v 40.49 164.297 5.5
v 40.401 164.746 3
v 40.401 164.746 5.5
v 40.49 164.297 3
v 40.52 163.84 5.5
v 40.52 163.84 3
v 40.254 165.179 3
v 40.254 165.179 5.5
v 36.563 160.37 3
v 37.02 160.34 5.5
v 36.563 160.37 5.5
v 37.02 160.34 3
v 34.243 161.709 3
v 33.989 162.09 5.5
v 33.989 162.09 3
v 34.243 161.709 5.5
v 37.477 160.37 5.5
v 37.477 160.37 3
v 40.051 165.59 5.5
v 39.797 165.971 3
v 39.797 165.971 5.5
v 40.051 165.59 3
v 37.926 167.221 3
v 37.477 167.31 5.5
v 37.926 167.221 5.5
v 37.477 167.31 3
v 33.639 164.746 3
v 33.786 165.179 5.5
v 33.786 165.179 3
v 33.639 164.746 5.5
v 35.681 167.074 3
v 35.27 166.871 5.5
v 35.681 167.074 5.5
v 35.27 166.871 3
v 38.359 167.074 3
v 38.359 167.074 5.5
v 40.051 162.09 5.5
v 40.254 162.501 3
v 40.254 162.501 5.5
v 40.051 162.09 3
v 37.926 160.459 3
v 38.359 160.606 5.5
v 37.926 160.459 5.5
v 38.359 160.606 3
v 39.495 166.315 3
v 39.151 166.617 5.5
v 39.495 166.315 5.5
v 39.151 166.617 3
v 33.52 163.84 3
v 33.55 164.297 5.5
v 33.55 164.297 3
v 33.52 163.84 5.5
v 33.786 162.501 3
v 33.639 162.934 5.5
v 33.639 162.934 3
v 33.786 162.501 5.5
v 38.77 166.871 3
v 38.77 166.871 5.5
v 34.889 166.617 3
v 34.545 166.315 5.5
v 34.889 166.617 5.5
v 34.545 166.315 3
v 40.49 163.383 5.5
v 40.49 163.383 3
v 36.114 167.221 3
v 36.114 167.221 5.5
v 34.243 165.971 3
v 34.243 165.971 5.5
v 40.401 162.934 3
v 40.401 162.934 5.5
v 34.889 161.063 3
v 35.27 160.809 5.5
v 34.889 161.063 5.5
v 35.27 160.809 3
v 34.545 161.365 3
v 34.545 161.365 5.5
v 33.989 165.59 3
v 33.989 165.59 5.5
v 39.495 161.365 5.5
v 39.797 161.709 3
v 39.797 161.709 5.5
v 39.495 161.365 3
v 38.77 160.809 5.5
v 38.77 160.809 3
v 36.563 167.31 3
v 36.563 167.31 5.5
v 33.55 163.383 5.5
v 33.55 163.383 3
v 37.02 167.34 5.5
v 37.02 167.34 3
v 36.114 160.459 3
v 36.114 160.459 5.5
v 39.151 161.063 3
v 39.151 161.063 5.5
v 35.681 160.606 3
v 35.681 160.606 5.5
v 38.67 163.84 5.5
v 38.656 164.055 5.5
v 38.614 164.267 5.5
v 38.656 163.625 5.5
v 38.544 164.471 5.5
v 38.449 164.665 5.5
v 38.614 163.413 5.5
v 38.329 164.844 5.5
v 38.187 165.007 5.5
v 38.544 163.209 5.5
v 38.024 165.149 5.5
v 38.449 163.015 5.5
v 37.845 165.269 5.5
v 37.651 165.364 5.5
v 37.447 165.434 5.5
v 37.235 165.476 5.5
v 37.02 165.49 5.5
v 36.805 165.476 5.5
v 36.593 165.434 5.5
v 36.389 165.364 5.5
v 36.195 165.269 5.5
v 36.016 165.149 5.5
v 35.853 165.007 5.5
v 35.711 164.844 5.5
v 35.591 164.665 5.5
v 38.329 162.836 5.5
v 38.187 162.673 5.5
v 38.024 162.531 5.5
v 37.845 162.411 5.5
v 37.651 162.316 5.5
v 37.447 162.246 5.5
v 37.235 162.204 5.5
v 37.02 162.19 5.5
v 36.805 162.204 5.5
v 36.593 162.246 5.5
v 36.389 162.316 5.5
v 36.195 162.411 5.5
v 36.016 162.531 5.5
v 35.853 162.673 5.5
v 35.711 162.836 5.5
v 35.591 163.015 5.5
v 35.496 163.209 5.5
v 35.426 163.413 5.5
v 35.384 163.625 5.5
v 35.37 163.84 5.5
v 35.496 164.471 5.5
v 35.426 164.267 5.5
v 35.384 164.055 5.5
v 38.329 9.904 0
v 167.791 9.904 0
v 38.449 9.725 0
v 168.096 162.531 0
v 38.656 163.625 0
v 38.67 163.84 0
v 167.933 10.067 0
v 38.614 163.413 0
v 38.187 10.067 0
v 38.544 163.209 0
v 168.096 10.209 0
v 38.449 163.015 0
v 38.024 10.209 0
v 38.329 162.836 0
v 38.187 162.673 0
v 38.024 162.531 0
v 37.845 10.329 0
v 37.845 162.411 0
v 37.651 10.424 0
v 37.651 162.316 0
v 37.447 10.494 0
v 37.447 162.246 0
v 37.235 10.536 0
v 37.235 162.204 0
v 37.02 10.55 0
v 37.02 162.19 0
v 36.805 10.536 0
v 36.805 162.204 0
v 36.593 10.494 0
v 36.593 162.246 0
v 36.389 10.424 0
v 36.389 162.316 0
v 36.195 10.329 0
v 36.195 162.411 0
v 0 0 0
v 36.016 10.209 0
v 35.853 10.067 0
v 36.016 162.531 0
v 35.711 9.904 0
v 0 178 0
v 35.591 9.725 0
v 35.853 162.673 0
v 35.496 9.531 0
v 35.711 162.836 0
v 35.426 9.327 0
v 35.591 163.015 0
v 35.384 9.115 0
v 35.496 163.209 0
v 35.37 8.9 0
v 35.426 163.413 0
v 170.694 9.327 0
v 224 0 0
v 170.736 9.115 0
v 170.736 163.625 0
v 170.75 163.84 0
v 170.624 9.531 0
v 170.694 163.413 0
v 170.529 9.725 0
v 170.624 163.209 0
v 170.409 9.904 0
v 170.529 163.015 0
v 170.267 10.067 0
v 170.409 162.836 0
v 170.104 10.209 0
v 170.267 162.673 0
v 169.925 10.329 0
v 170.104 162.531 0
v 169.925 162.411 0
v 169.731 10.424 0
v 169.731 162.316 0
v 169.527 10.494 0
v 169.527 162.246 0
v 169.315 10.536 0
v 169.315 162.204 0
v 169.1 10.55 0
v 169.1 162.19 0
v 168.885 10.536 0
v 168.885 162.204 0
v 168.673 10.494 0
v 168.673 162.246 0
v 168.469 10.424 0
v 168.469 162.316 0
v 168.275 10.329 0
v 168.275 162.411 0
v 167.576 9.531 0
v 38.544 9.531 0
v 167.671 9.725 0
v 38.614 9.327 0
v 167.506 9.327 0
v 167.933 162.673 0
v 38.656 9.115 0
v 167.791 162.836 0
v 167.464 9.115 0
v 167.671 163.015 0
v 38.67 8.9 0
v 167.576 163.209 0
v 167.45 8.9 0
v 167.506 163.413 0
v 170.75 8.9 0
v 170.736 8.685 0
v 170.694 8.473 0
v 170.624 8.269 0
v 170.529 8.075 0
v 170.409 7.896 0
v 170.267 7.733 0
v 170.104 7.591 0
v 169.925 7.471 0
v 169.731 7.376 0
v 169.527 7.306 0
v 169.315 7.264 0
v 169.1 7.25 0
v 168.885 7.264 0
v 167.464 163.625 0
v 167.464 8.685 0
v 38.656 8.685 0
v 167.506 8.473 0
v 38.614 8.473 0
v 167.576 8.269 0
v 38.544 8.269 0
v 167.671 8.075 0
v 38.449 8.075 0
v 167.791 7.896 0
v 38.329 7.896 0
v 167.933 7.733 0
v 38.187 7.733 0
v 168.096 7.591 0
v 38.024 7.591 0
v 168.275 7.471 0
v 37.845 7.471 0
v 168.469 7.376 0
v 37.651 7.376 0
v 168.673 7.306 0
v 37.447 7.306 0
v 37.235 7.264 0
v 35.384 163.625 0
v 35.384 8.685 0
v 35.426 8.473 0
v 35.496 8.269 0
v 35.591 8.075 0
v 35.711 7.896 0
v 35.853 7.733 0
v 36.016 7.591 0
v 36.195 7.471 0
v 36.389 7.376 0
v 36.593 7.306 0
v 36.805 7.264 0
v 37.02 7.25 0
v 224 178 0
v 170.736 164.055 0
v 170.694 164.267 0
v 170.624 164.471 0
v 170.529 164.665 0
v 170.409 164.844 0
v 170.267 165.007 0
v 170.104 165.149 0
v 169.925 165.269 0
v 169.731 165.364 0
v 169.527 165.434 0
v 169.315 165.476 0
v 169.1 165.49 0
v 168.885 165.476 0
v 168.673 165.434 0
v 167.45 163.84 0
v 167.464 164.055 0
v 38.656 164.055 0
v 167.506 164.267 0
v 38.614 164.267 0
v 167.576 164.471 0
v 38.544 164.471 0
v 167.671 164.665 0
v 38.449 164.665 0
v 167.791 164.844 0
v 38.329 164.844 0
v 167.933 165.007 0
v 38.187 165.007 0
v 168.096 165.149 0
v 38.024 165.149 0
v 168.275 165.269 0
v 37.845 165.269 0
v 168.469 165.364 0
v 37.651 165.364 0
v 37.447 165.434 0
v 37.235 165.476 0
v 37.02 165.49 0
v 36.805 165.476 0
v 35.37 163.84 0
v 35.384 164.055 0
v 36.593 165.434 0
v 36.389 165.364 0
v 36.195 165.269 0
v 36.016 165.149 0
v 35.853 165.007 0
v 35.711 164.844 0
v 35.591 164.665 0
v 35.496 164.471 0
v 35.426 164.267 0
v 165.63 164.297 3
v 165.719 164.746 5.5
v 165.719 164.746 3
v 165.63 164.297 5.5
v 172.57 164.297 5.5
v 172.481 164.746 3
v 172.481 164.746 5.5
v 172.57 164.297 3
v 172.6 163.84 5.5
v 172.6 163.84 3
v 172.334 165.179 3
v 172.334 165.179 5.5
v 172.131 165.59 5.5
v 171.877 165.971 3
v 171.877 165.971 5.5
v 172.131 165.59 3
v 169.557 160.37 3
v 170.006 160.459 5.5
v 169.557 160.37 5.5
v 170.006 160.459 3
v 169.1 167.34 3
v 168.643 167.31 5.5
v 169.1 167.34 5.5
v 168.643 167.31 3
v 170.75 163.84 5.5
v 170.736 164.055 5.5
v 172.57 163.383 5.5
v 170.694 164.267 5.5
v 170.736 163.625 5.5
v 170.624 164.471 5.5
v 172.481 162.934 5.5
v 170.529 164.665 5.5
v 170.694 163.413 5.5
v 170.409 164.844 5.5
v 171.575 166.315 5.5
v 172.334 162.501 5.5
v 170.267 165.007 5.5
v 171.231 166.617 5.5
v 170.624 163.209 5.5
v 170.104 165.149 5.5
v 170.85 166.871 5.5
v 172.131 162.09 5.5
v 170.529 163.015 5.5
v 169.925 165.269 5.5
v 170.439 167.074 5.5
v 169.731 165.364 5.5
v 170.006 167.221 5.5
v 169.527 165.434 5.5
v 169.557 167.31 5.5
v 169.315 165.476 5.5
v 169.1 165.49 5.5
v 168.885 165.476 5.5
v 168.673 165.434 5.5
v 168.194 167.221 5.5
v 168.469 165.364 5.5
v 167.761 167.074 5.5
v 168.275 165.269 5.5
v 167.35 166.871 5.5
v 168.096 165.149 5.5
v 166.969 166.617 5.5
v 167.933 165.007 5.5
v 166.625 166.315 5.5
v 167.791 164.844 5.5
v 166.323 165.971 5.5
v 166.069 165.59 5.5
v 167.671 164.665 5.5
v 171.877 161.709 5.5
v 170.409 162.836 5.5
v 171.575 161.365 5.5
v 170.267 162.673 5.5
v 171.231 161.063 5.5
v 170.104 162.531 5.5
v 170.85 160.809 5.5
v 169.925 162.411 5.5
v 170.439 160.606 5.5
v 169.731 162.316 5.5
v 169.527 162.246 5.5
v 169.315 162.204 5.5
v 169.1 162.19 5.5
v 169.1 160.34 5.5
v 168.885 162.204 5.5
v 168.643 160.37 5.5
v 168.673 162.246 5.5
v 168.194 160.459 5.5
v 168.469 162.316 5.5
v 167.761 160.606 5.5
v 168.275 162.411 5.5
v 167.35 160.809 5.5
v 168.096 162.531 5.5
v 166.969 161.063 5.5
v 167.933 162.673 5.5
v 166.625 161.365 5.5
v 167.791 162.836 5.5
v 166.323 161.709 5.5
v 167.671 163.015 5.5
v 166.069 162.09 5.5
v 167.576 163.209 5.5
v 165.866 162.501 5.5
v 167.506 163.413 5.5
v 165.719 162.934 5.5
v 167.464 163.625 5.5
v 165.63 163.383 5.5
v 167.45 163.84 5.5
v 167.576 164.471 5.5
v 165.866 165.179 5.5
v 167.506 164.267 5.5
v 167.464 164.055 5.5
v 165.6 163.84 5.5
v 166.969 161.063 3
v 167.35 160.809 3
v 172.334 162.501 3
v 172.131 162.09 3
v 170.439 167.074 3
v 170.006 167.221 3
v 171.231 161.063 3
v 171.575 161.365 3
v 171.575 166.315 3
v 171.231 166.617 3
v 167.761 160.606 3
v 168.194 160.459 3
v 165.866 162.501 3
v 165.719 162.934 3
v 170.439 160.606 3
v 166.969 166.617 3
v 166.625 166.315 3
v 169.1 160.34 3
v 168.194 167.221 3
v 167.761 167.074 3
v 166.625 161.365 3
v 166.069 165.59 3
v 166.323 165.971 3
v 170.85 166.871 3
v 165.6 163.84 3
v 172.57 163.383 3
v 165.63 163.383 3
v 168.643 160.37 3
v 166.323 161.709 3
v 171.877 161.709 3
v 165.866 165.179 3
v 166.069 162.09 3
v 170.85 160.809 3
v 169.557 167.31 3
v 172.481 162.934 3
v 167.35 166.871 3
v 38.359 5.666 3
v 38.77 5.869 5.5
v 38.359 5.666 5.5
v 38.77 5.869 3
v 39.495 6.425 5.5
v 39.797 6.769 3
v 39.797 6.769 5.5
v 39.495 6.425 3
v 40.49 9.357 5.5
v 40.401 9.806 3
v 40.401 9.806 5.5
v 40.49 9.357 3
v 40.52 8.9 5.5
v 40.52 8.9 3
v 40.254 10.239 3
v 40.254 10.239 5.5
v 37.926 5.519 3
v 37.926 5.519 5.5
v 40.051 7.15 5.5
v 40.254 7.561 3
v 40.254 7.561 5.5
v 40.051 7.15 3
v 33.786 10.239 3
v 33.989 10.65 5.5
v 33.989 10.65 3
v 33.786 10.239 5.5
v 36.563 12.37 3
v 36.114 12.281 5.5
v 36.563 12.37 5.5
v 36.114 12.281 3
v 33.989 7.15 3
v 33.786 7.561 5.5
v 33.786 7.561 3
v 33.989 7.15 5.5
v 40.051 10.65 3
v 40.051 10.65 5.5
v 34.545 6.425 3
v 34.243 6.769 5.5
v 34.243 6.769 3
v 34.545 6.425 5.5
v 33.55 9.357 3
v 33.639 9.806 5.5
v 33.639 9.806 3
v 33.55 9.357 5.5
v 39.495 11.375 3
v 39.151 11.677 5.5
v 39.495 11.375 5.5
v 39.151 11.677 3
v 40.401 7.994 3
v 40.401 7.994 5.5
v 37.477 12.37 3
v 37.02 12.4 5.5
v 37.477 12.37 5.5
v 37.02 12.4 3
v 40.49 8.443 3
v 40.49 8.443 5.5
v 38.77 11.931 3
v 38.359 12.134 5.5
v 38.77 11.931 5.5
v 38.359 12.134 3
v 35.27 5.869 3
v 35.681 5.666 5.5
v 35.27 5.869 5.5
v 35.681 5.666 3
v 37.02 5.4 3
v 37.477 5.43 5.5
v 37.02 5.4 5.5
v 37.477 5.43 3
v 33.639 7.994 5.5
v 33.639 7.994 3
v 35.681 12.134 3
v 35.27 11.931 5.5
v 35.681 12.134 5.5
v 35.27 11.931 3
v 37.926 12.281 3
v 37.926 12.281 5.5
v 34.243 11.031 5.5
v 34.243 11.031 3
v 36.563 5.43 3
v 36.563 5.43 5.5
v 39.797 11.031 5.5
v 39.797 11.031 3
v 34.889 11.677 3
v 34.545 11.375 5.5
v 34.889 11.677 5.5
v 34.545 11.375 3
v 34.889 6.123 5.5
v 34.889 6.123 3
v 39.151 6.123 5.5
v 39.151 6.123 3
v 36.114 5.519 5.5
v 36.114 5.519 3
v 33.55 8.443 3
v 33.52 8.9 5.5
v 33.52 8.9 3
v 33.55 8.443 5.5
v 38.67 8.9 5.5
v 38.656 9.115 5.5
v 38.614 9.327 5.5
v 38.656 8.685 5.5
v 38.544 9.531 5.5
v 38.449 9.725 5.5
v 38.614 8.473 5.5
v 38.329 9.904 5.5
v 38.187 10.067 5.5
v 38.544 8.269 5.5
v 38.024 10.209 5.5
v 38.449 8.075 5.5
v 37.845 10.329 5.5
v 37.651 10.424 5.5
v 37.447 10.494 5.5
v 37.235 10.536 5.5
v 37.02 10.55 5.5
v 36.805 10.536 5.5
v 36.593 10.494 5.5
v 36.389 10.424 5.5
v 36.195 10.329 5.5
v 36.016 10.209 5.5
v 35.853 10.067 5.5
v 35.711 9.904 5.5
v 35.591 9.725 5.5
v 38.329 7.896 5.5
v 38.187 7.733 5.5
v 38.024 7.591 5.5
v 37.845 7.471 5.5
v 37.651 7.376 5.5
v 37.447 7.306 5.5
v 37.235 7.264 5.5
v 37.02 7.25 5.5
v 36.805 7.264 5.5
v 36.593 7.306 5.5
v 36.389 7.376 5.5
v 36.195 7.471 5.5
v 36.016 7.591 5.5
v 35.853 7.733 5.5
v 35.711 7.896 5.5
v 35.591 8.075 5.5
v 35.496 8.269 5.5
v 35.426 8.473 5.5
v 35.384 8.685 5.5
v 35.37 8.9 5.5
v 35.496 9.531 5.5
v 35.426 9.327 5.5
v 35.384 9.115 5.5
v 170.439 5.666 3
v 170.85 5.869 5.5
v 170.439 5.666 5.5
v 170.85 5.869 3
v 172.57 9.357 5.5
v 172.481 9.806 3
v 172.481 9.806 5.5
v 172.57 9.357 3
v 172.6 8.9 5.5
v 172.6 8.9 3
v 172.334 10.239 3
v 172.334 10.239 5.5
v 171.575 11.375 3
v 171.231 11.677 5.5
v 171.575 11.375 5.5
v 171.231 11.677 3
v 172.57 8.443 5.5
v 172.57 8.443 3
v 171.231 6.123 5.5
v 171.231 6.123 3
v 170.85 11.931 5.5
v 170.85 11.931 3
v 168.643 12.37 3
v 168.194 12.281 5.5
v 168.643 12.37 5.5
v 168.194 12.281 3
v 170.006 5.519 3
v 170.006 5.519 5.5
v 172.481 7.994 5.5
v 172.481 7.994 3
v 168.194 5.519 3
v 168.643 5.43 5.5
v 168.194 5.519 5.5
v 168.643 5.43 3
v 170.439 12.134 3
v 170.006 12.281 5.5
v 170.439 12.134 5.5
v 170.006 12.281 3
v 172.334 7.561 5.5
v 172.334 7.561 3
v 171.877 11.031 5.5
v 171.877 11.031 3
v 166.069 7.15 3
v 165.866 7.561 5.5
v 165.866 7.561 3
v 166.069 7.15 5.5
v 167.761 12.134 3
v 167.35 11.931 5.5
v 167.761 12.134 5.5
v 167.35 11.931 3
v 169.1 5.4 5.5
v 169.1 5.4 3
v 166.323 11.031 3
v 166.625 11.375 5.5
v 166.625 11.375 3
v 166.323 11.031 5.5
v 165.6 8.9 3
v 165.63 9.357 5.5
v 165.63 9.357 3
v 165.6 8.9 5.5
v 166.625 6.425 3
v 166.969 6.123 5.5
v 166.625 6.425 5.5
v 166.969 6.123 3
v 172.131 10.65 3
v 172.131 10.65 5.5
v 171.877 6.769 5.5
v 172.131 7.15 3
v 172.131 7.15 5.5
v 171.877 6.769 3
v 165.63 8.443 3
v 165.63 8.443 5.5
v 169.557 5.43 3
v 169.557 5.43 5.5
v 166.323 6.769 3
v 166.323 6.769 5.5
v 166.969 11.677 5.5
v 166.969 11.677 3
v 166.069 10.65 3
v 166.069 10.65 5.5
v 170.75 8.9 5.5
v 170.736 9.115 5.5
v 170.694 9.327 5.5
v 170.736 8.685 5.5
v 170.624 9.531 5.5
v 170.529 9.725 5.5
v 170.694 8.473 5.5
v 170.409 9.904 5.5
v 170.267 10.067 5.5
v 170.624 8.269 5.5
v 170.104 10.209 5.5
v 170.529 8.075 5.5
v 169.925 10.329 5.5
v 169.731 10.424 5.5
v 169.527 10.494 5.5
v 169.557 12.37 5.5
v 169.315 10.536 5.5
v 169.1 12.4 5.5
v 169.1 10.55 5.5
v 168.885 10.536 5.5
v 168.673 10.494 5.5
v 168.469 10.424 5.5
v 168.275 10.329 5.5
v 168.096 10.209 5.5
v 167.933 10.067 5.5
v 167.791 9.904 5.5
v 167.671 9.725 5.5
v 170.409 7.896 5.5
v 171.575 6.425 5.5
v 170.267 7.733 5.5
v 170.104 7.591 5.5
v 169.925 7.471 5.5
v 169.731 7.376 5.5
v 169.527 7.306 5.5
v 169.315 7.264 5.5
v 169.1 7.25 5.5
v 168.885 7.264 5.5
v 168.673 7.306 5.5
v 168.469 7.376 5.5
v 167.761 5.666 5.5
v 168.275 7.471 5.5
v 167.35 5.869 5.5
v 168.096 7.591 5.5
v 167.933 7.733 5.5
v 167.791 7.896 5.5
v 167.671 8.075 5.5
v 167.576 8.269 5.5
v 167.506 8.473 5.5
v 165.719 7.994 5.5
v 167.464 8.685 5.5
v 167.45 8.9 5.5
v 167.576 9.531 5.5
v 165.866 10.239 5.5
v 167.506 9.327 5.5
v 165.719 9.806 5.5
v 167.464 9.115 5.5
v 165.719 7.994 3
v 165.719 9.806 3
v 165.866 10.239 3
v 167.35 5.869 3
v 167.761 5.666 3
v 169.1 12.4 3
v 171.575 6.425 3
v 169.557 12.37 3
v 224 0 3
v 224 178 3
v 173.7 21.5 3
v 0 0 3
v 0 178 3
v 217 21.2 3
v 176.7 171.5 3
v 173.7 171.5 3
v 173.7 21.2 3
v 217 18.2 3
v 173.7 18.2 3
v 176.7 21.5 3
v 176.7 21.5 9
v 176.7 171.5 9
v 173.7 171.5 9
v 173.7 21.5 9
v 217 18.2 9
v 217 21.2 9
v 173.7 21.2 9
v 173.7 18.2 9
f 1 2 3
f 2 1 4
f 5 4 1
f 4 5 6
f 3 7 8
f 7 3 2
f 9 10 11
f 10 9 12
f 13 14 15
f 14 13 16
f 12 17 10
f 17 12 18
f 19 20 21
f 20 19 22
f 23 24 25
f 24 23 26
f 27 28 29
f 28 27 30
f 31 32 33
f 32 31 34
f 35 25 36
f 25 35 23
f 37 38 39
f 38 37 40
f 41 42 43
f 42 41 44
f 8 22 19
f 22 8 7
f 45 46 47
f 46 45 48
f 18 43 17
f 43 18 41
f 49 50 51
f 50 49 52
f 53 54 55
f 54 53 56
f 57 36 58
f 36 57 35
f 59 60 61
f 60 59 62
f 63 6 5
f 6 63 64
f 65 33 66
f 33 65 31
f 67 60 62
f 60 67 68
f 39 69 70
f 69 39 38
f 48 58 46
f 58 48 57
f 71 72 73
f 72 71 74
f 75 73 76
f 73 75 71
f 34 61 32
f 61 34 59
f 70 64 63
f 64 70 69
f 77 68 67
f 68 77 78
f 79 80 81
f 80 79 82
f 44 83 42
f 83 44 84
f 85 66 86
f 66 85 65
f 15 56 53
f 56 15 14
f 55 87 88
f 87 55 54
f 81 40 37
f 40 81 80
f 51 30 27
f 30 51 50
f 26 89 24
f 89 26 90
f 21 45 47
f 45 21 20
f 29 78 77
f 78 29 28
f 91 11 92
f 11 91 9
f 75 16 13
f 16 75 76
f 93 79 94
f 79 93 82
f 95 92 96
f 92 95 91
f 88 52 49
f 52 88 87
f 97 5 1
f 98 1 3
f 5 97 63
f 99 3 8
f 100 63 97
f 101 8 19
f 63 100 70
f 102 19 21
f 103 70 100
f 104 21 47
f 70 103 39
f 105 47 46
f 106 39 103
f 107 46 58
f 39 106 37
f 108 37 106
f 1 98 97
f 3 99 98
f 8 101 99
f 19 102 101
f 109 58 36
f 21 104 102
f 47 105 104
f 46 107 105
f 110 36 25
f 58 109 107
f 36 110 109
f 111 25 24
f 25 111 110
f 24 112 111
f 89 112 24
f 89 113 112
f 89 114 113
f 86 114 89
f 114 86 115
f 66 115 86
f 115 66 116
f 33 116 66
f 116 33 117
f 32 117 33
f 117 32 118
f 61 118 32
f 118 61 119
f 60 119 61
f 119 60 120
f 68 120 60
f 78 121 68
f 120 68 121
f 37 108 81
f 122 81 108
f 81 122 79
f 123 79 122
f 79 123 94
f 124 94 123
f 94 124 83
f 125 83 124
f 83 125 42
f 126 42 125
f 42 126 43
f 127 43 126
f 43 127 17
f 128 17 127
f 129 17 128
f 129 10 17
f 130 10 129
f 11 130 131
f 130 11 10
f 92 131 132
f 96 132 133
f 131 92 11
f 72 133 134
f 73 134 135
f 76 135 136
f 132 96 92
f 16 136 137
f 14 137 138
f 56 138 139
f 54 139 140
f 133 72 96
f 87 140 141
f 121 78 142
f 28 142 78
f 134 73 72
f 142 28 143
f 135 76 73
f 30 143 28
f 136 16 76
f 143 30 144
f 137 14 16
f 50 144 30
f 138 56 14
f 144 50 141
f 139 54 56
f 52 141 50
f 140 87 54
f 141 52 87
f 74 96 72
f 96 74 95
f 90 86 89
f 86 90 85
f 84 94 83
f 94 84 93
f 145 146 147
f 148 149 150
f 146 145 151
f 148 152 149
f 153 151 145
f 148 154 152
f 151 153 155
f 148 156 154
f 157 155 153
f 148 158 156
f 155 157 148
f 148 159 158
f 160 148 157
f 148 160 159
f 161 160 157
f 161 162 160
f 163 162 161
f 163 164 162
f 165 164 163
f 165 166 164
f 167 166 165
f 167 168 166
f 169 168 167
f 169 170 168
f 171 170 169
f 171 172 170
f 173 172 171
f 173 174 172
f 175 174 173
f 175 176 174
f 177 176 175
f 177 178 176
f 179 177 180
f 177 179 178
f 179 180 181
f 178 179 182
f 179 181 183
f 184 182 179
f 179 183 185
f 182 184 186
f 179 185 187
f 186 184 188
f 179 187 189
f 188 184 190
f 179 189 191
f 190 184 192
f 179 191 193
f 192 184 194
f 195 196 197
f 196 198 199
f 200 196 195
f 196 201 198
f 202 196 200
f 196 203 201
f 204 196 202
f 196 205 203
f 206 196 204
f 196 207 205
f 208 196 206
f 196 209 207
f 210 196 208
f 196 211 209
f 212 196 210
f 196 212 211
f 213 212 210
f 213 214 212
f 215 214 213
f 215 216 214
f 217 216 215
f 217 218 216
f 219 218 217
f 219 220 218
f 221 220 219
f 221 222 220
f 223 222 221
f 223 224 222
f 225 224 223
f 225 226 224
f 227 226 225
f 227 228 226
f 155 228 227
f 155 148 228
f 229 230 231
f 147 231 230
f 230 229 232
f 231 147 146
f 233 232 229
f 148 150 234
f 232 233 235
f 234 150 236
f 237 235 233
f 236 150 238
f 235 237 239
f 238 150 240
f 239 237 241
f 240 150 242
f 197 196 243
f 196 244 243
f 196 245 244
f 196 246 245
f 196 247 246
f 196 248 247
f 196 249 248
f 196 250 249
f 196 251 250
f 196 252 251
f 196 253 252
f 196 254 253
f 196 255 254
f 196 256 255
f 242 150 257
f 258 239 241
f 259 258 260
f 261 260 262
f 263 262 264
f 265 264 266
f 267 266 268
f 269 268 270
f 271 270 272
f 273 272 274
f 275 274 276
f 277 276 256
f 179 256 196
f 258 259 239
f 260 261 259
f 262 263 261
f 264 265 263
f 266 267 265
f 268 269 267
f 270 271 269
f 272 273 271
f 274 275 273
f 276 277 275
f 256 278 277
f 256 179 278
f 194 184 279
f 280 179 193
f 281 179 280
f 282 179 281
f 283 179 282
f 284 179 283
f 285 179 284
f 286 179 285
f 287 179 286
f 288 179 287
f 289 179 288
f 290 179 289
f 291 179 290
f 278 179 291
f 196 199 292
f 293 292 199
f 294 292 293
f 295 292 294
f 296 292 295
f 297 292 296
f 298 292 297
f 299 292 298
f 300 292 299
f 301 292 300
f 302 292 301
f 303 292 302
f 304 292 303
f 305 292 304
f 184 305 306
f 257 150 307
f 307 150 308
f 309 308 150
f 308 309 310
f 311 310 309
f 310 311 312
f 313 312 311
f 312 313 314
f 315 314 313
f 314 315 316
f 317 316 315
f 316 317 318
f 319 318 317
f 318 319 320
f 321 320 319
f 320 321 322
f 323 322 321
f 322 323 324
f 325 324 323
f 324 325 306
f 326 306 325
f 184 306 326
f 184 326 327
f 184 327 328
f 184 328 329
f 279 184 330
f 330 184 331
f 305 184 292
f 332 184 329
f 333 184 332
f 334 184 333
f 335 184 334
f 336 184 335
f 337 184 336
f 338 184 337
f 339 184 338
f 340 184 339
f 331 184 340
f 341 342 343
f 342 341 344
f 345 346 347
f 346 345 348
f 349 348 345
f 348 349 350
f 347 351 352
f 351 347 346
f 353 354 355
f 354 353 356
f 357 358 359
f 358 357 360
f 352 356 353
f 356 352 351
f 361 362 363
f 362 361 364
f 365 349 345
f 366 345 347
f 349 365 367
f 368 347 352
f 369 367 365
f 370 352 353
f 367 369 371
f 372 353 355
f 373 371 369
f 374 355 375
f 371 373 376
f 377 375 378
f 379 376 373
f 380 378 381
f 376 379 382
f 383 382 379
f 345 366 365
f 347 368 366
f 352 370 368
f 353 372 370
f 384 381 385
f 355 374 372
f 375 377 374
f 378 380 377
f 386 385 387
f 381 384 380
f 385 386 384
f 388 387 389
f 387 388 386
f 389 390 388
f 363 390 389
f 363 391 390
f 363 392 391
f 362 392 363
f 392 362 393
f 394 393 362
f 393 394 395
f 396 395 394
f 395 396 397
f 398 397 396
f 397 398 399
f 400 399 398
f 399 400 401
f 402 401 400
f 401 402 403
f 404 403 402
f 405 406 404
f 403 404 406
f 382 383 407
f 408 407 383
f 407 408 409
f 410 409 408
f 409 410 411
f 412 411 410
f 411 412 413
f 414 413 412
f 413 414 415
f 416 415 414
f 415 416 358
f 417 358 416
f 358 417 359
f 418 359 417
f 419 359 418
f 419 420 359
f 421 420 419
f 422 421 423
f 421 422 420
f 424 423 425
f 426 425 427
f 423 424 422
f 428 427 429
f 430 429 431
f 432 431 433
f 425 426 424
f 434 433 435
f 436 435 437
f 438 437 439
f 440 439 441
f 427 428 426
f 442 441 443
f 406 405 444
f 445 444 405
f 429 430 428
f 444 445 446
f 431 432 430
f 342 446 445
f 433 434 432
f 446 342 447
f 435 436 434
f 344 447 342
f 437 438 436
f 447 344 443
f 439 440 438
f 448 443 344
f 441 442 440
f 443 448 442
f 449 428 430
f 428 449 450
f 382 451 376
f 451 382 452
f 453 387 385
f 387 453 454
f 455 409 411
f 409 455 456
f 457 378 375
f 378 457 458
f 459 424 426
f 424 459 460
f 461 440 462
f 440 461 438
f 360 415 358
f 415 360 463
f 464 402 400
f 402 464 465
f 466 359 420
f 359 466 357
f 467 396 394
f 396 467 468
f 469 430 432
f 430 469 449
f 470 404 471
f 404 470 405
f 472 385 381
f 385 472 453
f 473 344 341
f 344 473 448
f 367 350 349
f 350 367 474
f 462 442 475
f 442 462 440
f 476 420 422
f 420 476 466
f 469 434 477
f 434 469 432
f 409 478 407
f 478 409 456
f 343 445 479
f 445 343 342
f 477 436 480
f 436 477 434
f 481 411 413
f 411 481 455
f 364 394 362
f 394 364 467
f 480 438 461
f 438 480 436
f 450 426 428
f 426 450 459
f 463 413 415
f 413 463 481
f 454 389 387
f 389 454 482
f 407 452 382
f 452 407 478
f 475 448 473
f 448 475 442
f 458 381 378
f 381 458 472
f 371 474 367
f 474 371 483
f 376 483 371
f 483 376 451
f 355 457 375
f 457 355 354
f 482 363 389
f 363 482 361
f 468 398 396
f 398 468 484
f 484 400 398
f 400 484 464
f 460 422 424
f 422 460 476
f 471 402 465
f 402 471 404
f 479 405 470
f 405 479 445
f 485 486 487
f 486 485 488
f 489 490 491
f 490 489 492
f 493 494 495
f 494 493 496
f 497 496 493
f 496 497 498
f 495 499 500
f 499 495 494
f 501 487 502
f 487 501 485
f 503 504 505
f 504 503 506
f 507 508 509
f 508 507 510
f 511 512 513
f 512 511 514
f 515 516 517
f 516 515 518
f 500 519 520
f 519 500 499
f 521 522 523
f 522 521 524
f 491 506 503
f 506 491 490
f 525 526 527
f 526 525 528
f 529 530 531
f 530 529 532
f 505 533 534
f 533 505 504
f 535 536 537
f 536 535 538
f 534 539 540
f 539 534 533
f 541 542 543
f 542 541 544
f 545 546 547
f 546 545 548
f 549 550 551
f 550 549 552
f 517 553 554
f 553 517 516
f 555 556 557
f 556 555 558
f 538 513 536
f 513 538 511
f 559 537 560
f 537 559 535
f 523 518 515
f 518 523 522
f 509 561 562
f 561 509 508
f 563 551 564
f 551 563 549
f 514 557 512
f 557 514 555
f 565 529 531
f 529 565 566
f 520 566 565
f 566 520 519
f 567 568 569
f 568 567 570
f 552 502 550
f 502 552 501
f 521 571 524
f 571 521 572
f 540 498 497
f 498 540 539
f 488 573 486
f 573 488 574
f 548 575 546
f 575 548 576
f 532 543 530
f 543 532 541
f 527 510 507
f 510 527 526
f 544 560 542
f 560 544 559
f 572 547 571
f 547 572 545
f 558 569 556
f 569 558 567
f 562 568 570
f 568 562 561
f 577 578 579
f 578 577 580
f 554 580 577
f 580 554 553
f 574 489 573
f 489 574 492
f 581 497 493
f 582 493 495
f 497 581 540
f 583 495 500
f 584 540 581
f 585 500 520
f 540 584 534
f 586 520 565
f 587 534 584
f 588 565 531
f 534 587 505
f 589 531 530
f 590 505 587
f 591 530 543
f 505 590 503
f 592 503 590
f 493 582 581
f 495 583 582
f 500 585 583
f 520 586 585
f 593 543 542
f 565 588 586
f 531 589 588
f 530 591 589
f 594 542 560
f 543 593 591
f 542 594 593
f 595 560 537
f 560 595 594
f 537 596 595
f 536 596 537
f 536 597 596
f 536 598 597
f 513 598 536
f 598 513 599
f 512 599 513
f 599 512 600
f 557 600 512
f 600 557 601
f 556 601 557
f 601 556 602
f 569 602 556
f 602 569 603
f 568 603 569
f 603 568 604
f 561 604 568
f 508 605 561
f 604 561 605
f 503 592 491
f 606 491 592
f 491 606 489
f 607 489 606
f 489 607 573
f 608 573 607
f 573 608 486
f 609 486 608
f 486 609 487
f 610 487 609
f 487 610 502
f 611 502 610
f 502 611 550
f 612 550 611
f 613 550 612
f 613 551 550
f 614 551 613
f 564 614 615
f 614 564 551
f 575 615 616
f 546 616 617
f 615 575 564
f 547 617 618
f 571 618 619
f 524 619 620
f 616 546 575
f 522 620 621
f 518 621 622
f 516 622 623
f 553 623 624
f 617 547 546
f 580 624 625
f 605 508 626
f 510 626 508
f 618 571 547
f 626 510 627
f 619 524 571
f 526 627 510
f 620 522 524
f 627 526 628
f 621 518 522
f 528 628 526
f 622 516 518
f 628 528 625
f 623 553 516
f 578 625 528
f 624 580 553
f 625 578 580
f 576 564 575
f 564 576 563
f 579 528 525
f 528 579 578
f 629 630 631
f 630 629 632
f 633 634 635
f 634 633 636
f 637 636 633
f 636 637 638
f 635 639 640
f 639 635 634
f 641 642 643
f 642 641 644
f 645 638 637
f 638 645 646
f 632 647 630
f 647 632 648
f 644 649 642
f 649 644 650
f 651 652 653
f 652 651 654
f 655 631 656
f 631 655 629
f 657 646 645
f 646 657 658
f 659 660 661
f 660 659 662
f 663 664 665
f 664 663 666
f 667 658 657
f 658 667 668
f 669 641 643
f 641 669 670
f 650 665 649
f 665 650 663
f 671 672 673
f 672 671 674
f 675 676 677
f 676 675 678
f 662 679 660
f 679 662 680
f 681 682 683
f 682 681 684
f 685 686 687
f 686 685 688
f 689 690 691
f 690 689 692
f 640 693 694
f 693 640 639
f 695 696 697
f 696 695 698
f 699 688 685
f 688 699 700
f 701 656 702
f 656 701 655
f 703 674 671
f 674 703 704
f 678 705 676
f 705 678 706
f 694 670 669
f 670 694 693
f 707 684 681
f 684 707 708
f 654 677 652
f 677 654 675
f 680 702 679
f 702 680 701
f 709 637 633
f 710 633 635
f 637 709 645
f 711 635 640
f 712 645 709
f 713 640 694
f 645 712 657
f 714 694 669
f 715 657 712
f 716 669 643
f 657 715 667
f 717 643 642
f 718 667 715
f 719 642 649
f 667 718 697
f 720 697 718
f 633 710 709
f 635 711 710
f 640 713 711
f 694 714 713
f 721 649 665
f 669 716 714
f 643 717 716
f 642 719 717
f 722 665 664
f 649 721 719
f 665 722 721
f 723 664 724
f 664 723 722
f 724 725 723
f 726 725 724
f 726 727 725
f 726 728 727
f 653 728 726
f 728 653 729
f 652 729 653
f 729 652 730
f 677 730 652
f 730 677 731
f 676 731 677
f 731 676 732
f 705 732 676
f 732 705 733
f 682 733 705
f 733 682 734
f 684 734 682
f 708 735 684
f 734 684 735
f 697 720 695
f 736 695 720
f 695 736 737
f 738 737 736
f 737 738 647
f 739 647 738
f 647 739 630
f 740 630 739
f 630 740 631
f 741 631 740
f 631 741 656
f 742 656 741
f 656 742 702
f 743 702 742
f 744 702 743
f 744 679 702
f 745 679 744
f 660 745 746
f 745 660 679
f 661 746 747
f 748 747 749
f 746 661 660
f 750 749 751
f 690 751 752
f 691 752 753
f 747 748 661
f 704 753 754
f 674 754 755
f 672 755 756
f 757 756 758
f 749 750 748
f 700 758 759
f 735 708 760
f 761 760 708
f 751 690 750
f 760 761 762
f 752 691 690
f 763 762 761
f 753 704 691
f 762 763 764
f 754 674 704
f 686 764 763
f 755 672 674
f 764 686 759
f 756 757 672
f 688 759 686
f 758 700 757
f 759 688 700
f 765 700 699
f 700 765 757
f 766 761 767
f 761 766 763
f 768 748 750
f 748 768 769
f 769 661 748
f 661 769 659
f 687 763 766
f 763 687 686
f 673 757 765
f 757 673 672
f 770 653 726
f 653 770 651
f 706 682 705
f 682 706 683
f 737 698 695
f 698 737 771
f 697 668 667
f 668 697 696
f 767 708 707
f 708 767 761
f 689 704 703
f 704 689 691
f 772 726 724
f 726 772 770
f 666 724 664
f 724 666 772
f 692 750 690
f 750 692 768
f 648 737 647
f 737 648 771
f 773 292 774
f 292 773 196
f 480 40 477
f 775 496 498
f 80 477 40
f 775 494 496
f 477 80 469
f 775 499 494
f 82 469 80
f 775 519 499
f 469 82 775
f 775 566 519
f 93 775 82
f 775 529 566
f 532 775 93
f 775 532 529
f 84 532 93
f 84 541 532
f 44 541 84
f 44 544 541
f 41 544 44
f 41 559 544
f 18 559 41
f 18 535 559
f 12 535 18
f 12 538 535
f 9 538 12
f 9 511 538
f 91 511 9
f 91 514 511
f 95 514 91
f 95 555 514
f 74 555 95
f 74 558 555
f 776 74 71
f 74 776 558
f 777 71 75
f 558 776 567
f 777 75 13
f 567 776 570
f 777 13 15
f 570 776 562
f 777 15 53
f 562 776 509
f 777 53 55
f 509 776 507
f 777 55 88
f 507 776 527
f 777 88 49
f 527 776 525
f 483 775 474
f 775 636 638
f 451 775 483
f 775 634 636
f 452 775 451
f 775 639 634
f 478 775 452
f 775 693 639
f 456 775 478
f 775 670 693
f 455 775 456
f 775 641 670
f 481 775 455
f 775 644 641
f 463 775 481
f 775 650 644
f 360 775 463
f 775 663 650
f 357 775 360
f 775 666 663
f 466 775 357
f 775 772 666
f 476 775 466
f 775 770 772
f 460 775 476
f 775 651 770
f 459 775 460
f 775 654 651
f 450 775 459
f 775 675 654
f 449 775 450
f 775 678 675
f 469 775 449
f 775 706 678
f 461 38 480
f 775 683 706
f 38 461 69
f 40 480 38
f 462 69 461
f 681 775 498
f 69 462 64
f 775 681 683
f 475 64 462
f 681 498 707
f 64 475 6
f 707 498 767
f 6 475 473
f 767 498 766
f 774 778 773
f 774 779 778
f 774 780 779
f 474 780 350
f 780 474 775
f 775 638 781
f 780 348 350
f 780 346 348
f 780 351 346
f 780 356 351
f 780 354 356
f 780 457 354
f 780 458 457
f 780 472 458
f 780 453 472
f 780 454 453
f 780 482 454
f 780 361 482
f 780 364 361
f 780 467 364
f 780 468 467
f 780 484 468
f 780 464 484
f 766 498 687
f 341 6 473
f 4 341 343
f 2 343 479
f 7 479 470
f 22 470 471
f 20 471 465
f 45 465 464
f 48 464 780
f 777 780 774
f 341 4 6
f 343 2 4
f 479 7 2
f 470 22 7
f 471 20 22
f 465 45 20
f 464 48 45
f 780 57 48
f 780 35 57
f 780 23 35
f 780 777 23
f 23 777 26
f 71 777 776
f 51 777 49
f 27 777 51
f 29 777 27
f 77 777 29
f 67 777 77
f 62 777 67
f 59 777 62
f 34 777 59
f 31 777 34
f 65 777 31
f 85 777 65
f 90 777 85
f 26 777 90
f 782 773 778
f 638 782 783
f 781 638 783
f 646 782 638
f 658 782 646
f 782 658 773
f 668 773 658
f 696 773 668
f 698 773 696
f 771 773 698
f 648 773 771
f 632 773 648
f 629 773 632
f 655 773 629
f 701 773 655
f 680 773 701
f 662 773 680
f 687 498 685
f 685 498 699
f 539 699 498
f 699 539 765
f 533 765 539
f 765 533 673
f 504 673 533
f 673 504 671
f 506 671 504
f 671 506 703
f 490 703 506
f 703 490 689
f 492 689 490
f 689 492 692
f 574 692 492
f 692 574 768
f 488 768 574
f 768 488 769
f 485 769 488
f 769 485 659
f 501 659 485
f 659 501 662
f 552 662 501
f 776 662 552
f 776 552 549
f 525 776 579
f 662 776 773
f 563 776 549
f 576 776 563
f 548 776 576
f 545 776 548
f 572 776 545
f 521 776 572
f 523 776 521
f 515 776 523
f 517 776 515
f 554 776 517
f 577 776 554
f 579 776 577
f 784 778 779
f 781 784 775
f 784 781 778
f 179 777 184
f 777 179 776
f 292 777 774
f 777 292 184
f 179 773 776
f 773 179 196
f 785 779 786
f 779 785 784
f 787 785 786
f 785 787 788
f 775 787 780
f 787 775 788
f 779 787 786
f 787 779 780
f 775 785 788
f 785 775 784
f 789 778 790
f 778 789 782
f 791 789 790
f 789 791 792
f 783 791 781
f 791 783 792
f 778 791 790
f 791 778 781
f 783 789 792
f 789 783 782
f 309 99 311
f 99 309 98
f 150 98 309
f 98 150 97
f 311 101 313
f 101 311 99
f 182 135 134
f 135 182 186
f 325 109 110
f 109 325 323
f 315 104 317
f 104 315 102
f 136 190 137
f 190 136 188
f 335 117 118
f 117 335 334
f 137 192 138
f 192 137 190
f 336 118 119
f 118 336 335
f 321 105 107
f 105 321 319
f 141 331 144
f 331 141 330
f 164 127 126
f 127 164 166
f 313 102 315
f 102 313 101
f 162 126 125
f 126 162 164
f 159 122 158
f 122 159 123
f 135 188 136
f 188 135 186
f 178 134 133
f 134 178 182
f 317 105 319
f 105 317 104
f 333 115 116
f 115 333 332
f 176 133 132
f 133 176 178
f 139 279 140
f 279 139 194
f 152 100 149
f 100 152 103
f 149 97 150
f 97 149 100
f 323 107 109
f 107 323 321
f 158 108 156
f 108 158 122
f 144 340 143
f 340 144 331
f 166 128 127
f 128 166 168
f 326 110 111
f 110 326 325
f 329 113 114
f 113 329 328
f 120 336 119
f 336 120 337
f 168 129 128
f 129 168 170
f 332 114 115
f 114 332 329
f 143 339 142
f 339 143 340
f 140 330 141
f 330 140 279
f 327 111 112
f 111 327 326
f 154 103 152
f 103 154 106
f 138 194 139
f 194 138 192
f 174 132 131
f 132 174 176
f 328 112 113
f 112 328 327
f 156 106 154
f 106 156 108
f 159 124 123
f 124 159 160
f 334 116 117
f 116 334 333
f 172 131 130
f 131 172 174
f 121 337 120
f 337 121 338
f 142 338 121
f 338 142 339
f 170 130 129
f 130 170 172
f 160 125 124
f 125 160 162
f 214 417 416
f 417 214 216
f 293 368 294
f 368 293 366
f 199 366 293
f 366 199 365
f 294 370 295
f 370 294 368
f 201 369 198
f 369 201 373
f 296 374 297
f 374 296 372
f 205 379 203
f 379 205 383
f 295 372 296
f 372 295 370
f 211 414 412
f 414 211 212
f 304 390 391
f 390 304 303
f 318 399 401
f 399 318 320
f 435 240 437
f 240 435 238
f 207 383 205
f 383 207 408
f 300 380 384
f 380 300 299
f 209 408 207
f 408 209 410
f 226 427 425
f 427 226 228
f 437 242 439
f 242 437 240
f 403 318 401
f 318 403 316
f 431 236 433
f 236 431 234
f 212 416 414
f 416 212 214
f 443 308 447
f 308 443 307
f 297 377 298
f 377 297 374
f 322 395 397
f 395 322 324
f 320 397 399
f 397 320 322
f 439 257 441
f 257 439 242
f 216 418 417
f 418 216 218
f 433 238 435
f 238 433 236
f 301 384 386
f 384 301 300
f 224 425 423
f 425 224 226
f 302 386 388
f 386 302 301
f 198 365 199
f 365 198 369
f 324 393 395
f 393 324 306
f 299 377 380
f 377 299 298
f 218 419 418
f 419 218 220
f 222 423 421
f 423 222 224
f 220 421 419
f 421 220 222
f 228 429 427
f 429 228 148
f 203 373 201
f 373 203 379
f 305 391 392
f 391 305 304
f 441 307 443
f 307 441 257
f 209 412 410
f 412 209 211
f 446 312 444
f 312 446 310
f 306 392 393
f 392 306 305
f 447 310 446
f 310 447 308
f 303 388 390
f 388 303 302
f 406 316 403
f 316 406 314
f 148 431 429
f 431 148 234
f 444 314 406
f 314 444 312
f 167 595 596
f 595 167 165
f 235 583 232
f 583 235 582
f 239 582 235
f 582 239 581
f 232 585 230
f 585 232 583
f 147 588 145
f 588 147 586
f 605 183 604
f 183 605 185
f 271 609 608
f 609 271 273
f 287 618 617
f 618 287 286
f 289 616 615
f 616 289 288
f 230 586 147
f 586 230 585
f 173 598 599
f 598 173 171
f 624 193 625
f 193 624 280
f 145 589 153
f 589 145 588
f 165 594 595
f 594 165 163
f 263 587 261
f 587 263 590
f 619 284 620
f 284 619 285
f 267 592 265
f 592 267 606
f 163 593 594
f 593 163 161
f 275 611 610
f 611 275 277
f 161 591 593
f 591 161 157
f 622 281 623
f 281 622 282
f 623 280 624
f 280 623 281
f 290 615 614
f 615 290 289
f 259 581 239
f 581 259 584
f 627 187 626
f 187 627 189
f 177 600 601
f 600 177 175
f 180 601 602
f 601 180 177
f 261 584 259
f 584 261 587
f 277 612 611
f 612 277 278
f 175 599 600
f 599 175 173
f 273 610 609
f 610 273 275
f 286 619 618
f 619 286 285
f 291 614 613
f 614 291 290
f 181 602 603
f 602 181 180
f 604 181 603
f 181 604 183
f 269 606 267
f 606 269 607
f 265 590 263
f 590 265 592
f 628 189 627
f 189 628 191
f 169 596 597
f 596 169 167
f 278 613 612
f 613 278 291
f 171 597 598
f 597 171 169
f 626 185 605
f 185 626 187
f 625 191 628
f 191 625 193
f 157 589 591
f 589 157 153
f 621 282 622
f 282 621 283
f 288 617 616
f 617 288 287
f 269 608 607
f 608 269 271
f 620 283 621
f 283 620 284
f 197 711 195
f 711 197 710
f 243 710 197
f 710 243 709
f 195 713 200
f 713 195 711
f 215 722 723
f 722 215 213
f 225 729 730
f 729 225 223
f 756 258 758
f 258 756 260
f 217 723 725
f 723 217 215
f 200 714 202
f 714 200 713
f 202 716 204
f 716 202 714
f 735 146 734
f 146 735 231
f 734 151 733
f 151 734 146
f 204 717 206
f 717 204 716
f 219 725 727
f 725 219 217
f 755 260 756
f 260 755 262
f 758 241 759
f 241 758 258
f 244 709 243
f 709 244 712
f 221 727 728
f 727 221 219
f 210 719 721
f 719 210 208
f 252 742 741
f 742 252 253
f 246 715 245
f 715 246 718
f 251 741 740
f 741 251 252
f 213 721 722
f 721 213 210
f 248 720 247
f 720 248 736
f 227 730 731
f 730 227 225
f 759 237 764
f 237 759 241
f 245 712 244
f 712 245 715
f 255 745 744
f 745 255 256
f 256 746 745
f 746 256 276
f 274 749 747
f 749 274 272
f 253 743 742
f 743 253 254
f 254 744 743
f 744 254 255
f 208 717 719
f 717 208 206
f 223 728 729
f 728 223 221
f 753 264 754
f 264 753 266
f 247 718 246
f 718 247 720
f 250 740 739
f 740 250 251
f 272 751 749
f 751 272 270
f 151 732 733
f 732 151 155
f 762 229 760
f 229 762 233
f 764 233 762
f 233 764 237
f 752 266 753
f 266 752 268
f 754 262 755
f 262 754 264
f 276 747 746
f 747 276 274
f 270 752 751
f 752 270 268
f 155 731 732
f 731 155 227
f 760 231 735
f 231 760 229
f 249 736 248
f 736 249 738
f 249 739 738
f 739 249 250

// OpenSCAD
// The case base with standoff bosses from the Mini-ITX case example, as the eval's reference.
// Render: openscad -o model.stl model.scad
include <../../../../../examples/mini-itx-case/case.scad>
part = "base";
